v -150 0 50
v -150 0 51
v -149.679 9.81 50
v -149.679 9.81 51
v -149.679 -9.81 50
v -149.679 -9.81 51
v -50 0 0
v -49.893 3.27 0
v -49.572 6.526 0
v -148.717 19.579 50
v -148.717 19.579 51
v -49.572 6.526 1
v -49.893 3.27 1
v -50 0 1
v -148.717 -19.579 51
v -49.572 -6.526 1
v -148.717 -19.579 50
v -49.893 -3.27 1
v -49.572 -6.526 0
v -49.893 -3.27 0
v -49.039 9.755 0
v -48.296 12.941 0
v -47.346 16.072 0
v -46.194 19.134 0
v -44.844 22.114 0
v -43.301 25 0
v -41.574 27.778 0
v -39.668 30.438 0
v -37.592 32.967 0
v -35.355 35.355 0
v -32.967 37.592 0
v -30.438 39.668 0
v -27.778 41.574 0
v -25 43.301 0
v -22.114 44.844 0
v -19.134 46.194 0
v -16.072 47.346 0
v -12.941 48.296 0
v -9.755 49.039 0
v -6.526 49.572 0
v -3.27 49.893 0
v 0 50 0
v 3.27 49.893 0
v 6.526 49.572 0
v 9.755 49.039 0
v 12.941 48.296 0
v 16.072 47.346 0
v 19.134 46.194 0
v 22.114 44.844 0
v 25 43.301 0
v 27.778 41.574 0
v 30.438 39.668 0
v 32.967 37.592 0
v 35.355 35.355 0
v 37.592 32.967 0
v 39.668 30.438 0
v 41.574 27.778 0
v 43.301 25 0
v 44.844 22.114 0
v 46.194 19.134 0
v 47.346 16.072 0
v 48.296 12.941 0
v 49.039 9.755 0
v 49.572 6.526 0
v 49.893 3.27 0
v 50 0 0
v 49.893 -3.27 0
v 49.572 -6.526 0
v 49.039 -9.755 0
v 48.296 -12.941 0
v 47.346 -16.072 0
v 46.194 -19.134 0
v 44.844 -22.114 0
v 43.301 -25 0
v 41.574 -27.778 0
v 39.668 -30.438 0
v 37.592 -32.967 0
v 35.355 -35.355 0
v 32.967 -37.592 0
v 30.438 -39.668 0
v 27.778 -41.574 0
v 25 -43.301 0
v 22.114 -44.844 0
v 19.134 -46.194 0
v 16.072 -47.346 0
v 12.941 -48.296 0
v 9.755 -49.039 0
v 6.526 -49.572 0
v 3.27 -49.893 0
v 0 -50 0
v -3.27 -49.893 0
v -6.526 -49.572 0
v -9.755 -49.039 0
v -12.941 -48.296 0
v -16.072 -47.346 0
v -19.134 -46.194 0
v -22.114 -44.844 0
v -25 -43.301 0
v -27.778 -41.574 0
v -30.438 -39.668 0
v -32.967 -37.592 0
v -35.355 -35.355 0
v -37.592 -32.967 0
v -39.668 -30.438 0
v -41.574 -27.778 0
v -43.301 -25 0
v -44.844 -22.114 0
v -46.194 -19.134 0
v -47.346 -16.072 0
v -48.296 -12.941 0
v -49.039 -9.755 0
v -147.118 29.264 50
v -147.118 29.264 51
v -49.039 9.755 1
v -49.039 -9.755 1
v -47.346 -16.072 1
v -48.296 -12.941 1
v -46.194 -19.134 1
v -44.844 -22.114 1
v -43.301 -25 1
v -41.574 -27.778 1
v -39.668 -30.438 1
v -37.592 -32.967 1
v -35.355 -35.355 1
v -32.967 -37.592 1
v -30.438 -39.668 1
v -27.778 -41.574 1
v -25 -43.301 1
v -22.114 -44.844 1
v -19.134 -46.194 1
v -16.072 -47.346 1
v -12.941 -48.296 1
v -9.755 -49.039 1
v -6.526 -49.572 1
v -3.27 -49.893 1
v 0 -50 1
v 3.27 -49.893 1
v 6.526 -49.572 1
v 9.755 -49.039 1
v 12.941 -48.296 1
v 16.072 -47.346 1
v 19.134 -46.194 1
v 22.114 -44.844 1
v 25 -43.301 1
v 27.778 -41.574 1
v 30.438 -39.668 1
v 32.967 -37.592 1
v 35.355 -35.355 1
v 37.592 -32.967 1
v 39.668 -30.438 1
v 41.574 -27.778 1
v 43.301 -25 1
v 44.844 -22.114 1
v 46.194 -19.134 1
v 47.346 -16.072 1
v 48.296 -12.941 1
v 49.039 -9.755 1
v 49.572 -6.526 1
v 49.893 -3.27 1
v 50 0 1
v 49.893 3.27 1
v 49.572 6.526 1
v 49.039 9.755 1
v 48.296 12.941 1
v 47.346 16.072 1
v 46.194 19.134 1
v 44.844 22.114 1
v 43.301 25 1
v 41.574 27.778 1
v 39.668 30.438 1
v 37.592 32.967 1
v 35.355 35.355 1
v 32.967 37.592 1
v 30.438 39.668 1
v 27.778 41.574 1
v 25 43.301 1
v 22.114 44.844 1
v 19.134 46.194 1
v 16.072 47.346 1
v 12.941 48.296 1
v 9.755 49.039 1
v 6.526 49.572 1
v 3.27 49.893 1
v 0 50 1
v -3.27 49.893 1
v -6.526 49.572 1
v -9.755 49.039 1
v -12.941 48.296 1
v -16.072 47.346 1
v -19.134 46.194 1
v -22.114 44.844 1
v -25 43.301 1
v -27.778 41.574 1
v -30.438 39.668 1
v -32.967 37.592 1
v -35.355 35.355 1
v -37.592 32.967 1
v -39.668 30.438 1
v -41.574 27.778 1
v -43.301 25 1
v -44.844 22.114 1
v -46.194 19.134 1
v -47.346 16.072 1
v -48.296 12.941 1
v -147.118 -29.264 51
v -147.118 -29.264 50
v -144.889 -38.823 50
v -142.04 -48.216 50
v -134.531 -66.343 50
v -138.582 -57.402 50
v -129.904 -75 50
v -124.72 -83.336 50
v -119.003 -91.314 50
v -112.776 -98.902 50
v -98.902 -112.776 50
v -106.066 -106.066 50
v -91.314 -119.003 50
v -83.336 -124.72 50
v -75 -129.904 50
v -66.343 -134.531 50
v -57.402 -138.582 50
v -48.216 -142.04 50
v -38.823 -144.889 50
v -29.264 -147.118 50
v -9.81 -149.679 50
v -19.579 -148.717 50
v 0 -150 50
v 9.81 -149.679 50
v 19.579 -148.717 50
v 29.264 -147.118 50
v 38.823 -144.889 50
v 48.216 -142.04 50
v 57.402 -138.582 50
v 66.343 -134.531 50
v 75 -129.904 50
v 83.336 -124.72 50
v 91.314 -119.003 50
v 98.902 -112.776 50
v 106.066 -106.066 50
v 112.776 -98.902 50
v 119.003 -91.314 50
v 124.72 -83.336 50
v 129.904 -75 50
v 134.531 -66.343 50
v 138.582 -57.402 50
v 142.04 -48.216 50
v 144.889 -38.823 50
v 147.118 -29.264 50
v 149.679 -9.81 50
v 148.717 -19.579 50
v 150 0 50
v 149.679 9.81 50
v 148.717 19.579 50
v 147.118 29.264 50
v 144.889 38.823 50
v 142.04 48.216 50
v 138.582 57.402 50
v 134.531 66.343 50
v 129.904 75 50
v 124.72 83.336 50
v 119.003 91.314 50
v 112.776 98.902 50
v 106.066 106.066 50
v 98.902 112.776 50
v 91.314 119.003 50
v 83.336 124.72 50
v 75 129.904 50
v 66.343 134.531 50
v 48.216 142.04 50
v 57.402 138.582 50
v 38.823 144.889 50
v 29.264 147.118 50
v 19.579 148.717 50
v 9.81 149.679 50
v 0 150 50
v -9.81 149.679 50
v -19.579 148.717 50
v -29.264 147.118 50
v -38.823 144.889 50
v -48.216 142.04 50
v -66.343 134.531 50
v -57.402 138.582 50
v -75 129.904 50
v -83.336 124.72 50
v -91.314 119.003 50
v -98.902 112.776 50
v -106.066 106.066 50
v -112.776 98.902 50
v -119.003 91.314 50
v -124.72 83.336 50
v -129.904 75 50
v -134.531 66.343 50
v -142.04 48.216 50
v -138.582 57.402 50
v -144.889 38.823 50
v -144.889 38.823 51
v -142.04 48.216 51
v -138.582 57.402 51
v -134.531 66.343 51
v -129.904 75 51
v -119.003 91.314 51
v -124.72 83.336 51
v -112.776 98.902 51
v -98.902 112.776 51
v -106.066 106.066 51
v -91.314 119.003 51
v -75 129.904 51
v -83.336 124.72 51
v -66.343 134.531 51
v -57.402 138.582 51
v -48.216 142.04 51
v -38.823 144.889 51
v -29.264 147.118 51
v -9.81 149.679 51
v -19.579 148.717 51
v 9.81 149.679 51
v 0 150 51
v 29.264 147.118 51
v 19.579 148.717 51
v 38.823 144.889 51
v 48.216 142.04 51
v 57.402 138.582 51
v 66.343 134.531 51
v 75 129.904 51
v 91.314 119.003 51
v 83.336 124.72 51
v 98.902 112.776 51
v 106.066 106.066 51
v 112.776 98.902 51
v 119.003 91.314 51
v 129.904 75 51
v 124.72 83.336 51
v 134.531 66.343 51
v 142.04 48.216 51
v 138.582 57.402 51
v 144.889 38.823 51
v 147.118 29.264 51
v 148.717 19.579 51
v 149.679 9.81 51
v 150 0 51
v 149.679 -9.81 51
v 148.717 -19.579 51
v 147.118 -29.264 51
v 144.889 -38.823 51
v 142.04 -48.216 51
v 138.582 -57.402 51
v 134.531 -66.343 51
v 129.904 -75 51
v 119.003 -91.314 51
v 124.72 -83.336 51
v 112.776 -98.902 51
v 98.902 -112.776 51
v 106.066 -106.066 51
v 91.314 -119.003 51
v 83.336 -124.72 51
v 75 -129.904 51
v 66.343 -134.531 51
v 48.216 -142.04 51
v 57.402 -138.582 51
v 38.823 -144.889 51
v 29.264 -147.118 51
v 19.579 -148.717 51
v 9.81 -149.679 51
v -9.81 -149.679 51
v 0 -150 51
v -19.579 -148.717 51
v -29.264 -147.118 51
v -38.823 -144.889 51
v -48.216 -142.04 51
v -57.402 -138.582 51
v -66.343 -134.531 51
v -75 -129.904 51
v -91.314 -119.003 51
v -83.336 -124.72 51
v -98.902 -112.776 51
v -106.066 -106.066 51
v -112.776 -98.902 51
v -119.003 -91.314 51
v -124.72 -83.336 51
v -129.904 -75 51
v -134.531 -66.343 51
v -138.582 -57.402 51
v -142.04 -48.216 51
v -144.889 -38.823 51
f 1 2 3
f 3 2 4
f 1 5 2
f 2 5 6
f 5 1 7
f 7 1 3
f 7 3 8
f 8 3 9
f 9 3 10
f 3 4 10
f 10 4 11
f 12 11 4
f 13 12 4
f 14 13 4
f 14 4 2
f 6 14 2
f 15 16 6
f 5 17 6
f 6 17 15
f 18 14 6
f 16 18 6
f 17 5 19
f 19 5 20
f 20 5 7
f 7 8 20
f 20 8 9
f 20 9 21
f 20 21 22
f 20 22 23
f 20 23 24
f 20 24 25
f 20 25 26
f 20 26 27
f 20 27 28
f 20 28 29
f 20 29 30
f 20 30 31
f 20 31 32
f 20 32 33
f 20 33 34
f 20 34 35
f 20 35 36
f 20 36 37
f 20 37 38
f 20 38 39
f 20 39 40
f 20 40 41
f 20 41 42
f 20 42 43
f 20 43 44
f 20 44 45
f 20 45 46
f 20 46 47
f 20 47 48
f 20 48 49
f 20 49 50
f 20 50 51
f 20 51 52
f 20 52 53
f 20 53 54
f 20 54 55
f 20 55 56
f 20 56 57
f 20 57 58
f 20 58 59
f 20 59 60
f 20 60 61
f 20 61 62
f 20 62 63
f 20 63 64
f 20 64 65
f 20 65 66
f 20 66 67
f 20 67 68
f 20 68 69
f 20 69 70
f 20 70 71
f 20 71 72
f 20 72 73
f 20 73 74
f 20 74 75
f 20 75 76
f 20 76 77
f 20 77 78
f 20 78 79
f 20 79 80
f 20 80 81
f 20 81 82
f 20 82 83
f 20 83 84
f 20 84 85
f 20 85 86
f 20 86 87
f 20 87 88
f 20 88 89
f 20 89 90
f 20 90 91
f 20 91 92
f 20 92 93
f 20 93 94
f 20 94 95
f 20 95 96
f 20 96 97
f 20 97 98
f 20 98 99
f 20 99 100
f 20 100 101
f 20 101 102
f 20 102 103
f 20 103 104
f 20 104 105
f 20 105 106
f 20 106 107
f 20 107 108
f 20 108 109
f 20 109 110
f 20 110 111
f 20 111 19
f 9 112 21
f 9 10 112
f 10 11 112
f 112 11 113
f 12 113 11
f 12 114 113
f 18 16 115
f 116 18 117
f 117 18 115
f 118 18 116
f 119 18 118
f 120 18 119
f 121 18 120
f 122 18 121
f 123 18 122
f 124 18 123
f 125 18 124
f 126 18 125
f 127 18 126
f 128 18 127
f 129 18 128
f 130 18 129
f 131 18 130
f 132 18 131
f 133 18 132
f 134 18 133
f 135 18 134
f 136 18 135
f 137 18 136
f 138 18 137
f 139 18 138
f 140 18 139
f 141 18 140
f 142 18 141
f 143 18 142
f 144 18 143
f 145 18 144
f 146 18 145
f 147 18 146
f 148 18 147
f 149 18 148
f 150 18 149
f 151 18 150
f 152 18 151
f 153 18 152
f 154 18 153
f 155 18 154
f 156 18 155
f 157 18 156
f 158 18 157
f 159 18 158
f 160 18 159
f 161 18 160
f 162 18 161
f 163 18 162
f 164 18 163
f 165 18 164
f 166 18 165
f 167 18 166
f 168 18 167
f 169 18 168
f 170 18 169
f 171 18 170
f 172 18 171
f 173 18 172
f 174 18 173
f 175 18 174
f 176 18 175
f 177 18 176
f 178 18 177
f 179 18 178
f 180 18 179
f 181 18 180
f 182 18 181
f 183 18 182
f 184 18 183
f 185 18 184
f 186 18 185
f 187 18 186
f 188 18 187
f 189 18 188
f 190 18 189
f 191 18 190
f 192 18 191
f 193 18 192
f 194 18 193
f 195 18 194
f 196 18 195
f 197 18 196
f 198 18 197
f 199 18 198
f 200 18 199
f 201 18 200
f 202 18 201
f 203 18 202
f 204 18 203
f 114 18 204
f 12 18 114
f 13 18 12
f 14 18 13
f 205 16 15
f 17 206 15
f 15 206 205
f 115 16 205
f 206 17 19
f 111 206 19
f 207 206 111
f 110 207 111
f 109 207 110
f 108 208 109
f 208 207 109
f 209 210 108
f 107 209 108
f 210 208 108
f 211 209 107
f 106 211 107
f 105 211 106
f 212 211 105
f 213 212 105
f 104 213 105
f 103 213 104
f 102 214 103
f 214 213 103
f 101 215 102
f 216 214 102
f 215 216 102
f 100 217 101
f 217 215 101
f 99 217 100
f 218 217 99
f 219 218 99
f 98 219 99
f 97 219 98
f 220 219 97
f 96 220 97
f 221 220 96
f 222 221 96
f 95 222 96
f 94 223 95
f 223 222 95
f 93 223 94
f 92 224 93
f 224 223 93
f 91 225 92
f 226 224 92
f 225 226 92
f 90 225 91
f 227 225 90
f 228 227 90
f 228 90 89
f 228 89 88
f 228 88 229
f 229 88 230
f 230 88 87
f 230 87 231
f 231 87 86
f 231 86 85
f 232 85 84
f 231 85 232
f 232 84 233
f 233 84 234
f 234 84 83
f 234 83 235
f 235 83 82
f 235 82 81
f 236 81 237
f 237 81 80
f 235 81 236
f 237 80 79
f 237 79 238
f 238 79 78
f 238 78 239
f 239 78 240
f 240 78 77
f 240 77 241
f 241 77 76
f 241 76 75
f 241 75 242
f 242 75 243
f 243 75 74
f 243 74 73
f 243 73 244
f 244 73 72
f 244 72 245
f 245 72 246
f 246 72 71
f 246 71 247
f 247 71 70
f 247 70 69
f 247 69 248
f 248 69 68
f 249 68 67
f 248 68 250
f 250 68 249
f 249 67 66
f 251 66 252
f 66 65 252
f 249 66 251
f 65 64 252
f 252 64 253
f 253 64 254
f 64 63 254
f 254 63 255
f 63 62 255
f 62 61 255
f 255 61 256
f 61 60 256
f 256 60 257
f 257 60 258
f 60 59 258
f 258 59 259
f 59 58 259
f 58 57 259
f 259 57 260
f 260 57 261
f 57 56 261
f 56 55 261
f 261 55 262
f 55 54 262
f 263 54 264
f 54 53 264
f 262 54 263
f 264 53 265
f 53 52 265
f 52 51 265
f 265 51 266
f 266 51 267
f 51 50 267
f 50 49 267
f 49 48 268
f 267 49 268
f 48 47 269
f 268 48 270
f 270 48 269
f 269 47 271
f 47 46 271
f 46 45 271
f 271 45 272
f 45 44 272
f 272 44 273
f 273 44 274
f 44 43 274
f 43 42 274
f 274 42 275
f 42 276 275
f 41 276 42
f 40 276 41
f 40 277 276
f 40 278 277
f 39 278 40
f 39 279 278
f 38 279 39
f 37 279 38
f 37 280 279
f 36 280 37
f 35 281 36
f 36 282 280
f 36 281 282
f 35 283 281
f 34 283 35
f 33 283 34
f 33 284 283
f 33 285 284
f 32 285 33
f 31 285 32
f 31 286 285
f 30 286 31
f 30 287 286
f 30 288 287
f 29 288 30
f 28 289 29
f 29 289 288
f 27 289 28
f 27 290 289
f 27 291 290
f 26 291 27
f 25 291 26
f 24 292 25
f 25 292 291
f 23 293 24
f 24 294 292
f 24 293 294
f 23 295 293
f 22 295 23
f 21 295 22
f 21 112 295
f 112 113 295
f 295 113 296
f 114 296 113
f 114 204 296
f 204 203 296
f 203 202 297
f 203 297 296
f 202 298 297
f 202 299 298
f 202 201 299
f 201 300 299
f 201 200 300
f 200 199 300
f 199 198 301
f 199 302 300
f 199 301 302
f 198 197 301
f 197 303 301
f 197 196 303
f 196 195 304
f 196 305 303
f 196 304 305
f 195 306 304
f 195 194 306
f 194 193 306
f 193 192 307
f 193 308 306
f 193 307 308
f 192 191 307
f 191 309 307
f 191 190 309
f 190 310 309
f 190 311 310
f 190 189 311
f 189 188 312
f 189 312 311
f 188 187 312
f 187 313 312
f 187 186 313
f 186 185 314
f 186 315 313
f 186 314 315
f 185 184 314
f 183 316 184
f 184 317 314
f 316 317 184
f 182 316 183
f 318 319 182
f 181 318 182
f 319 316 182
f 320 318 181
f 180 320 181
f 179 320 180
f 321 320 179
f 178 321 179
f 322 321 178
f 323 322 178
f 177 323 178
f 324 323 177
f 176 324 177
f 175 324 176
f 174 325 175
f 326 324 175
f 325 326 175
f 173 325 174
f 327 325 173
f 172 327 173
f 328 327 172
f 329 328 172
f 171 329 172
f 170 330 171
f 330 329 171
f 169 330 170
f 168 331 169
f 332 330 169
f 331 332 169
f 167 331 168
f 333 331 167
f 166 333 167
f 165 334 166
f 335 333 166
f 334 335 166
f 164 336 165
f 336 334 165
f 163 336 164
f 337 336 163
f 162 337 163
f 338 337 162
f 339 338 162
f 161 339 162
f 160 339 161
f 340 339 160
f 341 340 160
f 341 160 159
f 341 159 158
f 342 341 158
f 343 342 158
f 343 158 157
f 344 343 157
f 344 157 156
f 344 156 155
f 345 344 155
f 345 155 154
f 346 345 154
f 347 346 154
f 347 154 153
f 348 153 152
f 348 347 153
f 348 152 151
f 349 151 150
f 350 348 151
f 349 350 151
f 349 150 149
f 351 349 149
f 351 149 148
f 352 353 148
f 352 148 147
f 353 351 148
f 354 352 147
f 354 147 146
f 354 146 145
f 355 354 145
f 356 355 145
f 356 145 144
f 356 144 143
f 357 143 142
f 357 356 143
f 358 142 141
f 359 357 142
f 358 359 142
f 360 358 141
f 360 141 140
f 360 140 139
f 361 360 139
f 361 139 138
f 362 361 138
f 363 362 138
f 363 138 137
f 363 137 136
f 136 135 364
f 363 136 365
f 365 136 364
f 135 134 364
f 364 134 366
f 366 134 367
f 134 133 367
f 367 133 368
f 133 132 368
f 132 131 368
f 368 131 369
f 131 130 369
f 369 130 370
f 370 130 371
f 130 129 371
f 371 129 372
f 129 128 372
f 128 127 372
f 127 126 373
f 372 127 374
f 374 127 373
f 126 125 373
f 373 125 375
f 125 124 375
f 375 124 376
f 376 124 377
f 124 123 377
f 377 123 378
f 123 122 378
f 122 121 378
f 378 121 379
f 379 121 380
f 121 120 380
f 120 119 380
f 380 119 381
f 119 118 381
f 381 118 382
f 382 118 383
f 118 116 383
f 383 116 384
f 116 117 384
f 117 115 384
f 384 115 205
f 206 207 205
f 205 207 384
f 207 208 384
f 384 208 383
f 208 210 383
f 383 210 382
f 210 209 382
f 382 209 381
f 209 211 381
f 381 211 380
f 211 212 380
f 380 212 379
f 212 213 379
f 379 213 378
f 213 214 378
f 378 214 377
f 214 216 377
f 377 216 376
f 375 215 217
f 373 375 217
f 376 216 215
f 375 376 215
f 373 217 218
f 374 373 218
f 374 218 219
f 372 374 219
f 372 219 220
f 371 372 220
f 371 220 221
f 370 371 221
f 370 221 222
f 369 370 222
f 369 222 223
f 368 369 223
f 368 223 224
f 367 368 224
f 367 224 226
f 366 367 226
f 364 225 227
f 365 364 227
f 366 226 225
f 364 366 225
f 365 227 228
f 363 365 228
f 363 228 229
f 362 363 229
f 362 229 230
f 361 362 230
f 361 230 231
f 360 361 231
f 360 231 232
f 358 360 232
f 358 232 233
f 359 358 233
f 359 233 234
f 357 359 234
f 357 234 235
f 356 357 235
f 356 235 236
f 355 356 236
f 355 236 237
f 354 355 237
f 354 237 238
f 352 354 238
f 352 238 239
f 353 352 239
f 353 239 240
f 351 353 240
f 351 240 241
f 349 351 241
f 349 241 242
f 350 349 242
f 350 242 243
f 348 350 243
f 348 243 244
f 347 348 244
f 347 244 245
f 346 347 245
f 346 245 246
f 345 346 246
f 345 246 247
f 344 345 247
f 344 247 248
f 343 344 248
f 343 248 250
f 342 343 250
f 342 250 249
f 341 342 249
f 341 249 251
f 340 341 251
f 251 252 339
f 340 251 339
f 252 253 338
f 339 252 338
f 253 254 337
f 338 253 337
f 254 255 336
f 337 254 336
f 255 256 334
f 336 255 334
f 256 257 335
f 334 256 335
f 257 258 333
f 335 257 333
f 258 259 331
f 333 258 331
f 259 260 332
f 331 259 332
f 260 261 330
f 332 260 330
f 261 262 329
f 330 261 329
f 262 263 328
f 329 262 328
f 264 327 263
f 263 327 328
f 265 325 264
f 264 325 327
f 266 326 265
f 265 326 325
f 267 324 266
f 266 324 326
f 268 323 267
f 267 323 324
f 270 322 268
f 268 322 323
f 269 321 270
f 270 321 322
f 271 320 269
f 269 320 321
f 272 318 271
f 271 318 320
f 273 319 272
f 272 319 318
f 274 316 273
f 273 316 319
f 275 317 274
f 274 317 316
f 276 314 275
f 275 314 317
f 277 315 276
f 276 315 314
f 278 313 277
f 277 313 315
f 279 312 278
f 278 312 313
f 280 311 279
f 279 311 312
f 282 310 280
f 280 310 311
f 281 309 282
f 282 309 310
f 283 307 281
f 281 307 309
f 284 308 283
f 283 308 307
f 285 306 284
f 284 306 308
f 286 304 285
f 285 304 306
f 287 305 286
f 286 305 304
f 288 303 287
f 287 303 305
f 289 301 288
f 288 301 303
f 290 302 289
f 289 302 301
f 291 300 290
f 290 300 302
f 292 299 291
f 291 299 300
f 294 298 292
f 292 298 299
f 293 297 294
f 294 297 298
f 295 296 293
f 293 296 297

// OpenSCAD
$fn=96;

// This one leaves a vertical rim
module MainShape(height, baseRadius, topRadius, thickness)
{
    hull()
    {
        // Base
        cylinder(thickness, baseRadius, baseRadius);

        // Top
        translate([0, 0, height])
        cylinder(thickness, topRadius, topRadius);
    }
}

// This one leaves a horizontal rim
module MainShape2(height, baseRadius, topRadius, thickness)
{
    cylinder(height, baseRadius, topRadius);
}

module Bowl(height=50, baseRadius=50, topRadius=150, thickness=1)
{
    difference()
    {
        MainShape(height, baseRadius, topRadius, thickness);

        translate([0, 0, thickness])        
        MainShape(height, baseRadius, topRadius, thickness);
    }
}

Bowl();
